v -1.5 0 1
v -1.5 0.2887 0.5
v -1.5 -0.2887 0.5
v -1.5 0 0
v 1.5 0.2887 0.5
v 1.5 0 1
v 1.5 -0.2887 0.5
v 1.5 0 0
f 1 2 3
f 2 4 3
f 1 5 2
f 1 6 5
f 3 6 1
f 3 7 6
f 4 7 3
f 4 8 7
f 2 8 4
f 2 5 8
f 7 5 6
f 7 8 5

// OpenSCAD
// Rhombic Prism for Stacks of Shapes
// by Slashee the Cow

line_length = 0.5;
rhombus_angle = 60;
rhombus_height = line_length * sin(rhombus_angle);

module rhombus(side_length, angle) {
    height = side_length * sin(angle);
    half_width = side_length * cos(angle);
    points = [[0, 0], [half_width, height], [0, 2 * height], [-half_width, height]];
    polygon(points);
}
color("LimeGreen")
translate([-1.5,0,0])
rotate([0,90,0])
linear_extrude(3)
resize([1,0,0], auto = true)
rotate([0,0,90])
rhombus(line_length, rhombus_angle);
